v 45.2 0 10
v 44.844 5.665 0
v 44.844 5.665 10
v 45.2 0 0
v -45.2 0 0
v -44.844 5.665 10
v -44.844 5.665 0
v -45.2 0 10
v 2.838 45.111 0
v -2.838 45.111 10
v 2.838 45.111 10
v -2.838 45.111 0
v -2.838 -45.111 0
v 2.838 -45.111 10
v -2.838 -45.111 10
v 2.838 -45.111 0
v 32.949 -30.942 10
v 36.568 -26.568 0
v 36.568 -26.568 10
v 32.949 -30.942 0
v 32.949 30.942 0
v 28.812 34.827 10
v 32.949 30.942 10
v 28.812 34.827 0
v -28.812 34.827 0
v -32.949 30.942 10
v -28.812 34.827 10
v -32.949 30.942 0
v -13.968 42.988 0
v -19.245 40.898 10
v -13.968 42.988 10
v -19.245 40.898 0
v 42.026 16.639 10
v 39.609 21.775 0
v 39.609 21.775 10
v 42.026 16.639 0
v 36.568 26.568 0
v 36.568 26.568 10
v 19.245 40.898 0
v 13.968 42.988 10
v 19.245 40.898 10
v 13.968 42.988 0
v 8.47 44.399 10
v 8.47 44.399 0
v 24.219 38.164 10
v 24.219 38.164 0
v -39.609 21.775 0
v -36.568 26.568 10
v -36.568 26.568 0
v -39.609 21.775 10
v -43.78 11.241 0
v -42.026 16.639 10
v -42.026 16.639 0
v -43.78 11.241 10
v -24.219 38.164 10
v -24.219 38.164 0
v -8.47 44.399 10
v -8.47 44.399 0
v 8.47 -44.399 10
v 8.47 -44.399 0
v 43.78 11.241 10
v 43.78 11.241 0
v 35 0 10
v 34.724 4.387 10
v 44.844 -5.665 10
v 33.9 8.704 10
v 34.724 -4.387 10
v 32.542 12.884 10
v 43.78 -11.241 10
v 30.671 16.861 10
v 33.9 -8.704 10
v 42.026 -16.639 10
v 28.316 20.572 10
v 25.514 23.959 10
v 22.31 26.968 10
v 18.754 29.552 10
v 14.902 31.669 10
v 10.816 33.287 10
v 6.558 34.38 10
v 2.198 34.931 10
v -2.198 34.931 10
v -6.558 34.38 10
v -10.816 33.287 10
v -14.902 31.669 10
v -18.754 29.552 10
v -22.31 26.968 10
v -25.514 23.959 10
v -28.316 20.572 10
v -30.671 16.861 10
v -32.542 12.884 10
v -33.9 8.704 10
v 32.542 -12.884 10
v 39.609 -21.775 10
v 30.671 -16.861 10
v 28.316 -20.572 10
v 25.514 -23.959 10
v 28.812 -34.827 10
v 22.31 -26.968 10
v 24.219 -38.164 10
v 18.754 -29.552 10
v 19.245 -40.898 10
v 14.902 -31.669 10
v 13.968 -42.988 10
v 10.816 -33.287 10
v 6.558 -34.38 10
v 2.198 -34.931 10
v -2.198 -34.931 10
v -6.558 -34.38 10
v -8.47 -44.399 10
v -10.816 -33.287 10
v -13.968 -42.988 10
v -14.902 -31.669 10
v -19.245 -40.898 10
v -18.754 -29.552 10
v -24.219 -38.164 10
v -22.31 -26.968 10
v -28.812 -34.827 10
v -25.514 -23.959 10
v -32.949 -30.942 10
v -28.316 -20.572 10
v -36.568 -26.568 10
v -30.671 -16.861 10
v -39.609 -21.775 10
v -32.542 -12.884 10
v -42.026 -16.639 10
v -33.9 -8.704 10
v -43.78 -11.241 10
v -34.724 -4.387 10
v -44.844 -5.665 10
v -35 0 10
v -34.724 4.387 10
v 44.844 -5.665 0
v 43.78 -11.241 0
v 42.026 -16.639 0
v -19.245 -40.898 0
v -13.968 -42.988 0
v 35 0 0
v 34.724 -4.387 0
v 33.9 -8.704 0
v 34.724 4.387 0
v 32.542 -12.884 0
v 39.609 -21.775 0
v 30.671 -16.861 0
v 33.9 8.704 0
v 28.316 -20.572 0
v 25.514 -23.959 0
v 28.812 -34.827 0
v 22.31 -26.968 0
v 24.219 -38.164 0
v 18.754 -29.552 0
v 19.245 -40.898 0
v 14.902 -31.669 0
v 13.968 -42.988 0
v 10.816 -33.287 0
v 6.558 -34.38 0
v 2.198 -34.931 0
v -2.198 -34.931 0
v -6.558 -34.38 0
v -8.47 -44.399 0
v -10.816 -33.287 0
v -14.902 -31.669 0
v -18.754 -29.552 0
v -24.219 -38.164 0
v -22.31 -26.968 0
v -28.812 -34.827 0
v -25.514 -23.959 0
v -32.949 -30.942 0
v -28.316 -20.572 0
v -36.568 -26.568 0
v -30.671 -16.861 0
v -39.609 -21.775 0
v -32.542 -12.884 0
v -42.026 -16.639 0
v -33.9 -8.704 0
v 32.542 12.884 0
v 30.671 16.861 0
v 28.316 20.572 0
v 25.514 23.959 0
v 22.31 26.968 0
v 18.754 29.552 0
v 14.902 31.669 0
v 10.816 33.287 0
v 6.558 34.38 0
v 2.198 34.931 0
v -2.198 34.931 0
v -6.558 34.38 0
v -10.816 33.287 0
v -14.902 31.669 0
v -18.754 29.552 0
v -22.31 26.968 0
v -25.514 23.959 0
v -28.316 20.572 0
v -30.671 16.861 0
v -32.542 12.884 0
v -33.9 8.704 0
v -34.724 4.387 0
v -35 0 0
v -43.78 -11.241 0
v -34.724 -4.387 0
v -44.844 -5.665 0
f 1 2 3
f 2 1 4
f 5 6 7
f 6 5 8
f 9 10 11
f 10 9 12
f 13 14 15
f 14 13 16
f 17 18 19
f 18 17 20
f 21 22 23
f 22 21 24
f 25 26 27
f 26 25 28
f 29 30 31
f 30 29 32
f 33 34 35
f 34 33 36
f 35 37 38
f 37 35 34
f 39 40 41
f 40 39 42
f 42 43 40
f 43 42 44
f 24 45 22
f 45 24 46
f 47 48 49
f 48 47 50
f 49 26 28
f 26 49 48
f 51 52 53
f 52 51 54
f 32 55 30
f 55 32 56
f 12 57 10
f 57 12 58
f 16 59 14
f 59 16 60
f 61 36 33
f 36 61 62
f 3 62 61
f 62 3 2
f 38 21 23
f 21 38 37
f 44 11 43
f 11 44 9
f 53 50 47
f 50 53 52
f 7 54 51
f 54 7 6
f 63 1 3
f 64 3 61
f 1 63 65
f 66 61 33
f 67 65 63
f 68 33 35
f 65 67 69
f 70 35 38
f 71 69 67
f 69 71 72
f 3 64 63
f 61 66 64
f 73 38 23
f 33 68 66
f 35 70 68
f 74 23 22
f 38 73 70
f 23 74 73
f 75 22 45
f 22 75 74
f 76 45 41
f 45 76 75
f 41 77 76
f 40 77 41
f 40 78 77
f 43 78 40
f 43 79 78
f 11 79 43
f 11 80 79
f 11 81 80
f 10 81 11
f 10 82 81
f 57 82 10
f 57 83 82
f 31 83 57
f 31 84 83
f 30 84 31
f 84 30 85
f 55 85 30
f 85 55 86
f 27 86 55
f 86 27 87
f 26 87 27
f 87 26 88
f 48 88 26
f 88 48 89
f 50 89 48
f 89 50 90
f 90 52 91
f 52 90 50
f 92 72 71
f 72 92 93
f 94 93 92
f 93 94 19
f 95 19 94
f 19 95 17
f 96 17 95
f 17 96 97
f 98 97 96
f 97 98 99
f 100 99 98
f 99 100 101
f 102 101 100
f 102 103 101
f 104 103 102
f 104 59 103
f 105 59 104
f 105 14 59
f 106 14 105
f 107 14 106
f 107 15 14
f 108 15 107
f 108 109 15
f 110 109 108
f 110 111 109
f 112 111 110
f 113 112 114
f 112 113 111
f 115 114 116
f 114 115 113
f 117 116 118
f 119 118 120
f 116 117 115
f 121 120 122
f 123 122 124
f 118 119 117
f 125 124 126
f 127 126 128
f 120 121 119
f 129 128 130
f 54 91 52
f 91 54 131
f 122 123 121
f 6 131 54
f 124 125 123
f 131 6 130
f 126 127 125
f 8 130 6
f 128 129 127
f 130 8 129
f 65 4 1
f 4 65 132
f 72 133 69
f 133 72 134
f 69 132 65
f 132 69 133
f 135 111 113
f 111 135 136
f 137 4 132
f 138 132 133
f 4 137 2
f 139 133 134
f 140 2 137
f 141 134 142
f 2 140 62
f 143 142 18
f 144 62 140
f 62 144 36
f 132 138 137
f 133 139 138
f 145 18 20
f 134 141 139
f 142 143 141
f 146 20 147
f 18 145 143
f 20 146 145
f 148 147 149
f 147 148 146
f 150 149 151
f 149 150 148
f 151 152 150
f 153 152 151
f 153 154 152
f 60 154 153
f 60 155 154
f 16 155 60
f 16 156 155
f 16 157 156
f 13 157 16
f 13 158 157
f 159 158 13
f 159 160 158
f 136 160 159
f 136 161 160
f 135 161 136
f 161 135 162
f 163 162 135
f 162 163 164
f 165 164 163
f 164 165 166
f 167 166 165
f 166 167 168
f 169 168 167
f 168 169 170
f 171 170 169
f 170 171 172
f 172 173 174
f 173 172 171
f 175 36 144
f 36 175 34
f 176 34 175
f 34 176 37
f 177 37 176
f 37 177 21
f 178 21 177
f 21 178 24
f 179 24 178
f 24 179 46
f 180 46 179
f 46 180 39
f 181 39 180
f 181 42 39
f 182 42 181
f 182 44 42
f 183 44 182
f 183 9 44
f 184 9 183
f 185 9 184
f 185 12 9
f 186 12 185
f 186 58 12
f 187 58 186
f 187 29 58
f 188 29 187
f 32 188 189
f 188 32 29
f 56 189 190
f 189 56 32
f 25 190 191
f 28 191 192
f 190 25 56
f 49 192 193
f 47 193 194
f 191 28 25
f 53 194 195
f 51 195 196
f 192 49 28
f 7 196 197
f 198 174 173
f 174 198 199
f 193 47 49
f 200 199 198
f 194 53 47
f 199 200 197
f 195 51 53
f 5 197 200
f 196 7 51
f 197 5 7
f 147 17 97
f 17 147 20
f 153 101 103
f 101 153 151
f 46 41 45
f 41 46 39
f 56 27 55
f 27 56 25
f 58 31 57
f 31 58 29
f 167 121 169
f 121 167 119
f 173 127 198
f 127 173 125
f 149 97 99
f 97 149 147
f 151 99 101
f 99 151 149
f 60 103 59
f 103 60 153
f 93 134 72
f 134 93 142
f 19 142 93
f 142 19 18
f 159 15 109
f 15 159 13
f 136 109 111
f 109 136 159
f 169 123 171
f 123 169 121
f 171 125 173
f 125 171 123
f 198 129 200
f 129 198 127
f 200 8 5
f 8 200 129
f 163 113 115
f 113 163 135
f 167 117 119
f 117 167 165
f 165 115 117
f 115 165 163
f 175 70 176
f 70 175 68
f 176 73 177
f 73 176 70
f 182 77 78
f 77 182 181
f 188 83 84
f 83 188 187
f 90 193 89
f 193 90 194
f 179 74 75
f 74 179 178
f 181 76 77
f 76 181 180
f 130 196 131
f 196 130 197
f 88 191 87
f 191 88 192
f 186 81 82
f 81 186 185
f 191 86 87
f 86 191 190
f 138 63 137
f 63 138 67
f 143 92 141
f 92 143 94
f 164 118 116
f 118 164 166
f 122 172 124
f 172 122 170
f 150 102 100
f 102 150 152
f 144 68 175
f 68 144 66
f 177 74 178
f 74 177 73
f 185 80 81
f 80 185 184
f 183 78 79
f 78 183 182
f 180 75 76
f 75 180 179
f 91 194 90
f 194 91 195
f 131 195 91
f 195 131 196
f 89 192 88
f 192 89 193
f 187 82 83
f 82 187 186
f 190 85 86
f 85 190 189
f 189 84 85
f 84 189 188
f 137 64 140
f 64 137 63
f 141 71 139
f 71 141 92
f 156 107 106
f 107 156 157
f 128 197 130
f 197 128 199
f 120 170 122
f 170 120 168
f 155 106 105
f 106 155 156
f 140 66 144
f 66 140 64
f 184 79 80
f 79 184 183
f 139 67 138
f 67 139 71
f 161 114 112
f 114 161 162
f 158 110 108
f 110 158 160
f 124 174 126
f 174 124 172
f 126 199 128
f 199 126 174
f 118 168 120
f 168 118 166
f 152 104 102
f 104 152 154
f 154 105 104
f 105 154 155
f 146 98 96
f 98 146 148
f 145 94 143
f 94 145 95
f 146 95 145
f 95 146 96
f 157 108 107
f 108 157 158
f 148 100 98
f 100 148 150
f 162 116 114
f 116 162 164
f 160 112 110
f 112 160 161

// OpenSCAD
$fn = 50;


difference() {
	union() {
		translate(v = [0, 0, 0]) {
			rotate(a = [0, 0, 0]) {
				cylinder(h = 10, r = 45.2000000000);
			}
		}
	}
	union() {
		translate(v = [0, 0, 0]) {
			rotate(a = [0, 0, 0]) {
				cylinder(h = 10, r = 35.0000000000);
			}
		}
	}
}
